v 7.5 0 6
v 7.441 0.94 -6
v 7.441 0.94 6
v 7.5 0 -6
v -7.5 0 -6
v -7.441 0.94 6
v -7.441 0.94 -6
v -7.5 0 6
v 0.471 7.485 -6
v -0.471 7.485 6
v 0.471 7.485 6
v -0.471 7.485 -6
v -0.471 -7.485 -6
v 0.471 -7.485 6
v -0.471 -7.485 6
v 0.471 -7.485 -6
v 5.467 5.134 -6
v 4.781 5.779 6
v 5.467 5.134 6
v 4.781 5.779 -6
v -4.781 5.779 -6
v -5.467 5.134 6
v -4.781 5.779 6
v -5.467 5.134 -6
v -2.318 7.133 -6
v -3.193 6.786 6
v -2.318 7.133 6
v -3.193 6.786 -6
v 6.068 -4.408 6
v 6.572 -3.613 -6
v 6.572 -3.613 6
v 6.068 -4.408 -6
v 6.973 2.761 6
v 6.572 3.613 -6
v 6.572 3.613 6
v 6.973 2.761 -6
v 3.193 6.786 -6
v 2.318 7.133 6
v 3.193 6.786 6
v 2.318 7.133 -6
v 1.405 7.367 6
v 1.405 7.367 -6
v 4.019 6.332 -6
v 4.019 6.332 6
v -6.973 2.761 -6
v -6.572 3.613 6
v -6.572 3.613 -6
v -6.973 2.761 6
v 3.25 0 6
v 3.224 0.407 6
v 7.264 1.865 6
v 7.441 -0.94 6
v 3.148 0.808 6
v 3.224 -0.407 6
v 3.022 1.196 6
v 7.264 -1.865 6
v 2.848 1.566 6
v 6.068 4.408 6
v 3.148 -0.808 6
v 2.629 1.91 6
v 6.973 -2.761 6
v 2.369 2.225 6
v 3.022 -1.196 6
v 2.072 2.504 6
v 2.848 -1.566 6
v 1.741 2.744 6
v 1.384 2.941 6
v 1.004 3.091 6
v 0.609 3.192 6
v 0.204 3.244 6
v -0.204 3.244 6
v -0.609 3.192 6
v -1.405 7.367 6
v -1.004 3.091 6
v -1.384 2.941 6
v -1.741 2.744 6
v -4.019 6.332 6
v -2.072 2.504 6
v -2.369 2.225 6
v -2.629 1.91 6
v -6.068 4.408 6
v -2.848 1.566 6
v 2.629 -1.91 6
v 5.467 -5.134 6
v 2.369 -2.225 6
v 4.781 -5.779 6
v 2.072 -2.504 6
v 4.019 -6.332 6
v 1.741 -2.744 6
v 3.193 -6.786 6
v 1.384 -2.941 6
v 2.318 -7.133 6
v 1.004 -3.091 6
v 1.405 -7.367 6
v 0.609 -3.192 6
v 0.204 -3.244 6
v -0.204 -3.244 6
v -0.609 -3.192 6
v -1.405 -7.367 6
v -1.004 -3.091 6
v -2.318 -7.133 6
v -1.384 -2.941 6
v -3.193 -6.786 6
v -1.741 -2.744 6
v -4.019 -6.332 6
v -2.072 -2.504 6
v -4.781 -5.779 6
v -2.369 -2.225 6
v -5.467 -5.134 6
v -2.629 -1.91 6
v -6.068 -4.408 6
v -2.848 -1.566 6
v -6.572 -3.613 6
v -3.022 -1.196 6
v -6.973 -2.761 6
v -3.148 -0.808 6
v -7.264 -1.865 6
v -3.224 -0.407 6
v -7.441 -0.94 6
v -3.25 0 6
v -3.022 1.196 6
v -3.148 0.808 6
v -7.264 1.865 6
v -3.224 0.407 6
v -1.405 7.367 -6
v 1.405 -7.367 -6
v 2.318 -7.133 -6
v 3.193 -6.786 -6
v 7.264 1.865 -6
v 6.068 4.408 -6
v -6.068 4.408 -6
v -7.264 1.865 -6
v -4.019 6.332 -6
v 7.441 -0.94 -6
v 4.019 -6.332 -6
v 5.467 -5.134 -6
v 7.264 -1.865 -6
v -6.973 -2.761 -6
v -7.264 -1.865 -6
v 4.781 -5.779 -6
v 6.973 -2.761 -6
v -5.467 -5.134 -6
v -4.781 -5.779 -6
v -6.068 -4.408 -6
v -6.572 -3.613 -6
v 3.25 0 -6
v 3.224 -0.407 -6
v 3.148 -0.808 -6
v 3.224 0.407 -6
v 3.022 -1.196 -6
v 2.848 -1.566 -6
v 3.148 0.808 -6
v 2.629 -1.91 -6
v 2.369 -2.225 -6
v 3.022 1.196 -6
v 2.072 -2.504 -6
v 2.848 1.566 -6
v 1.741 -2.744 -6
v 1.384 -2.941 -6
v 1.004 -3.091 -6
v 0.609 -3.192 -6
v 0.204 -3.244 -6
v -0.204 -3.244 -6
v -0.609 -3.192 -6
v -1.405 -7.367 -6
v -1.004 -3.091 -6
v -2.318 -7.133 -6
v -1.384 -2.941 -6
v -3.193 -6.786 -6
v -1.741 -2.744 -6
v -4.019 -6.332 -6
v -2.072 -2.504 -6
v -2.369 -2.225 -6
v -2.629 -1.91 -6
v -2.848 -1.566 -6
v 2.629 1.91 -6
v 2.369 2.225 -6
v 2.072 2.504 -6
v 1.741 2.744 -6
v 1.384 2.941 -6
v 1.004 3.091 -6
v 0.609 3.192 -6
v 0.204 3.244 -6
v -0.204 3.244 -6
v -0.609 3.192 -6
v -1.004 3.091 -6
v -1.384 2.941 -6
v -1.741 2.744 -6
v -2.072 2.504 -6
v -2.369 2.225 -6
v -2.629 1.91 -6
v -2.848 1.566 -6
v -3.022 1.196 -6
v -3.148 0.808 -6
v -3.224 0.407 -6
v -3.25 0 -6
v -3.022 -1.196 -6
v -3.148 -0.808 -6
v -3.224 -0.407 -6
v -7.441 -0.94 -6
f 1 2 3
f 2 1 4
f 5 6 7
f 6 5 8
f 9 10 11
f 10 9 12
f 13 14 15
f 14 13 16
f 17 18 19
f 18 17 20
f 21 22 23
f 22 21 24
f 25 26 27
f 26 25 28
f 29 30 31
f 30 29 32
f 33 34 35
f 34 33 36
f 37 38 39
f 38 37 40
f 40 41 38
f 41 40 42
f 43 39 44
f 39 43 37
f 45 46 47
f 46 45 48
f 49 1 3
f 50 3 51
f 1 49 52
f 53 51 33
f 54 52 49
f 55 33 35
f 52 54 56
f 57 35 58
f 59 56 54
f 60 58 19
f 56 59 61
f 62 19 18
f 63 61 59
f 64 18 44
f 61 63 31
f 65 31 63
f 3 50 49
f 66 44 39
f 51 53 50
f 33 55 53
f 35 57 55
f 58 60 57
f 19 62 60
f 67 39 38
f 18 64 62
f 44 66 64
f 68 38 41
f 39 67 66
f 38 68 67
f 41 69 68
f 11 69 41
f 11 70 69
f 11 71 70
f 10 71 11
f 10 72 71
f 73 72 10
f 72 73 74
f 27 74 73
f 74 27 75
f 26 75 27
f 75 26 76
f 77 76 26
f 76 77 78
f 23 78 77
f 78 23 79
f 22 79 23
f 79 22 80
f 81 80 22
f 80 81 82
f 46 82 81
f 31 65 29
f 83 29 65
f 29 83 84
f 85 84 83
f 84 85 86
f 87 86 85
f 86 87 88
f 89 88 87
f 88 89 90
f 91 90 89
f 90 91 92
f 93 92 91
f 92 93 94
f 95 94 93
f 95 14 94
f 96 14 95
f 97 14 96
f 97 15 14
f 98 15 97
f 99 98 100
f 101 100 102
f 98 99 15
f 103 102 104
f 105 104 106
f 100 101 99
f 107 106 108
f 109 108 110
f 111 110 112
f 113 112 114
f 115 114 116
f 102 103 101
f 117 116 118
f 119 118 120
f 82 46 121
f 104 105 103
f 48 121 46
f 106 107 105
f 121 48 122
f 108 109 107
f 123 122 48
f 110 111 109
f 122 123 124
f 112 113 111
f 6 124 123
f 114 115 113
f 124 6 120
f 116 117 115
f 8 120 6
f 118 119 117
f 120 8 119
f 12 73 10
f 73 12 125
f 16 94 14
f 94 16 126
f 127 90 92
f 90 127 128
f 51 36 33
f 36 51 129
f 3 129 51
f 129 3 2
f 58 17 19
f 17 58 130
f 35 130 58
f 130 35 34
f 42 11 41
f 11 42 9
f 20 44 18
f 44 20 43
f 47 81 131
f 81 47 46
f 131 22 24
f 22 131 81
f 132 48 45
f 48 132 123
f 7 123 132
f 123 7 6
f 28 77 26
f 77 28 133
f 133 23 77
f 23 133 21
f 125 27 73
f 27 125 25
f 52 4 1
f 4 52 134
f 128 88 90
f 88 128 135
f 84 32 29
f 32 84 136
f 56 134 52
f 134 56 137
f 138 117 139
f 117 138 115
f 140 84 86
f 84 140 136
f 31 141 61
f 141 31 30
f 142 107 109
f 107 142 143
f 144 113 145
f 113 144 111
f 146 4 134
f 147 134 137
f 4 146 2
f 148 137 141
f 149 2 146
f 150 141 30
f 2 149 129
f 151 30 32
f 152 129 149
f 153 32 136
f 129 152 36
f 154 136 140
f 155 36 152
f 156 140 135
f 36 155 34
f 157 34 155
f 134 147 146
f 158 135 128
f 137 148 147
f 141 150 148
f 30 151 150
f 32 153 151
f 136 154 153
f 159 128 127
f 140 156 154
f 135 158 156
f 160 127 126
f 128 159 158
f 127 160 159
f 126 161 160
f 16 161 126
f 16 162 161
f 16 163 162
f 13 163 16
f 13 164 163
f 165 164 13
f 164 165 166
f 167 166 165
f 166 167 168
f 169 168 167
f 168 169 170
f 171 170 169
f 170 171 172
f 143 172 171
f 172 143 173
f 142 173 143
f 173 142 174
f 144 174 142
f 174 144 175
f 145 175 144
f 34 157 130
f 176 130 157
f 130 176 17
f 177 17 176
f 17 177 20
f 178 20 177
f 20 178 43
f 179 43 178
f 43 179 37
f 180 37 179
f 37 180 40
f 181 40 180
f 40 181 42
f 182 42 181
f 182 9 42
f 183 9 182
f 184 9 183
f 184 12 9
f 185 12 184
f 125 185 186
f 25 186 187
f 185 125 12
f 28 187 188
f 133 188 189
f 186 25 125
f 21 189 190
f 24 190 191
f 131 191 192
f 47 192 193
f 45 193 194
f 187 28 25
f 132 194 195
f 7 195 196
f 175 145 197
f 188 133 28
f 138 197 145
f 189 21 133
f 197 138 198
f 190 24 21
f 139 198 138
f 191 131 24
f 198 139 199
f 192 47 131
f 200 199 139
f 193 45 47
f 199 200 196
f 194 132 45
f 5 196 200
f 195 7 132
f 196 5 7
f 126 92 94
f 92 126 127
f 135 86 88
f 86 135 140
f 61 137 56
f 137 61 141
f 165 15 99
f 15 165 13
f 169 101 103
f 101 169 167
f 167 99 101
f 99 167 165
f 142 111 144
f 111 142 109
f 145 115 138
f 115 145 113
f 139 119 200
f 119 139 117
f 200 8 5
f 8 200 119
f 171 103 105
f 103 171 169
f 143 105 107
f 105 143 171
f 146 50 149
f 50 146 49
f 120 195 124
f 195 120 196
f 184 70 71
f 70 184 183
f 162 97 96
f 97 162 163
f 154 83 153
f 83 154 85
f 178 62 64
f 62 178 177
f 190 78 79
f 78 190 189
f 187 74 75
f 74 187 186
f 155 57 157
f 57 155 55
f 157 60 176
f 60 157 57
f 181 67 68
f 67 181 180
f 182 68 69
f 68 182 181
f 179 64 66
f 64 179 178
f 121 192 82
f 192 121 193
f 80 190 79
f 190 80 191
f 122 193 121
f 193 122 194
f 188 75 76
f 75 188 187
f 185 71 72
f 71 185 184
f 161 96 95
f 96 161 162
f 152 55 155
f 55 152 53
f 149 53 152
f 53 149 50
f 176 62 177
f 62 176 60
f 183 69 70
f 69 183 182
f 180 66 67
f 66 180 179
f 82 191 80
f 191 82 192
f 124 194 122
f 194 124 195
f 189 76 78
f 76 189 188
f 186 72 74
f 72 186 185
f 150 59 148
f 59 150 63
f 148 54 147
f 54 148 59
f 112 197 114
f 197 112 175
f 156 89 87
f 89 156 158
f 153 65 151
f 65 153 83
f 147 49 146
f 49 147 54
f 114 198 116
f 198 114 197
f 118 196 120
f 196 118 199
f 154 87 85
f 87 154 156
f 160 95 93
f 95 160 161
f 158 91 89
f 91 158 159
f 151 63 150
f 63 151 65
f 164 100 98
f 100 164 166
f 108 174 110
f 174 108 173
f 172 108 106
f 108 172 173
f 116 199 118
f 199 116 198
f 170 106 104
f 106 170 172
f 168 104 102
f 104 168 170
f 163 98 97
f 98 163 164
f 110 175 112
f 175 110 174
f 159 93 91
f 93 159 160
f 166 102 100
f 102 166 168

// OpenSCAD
$fn = 50;


difference() {
	union() {
		translate(v = [0, 0, -6.0000000000]) {
			cylinder(h = 12, r = 7.5000000000);
		}
	}
	union() {
		translate(v = [0, 0, -100.0000000000]) {
			cylinder(h = 200, r = 3.2500000000);
		}
	}
}
